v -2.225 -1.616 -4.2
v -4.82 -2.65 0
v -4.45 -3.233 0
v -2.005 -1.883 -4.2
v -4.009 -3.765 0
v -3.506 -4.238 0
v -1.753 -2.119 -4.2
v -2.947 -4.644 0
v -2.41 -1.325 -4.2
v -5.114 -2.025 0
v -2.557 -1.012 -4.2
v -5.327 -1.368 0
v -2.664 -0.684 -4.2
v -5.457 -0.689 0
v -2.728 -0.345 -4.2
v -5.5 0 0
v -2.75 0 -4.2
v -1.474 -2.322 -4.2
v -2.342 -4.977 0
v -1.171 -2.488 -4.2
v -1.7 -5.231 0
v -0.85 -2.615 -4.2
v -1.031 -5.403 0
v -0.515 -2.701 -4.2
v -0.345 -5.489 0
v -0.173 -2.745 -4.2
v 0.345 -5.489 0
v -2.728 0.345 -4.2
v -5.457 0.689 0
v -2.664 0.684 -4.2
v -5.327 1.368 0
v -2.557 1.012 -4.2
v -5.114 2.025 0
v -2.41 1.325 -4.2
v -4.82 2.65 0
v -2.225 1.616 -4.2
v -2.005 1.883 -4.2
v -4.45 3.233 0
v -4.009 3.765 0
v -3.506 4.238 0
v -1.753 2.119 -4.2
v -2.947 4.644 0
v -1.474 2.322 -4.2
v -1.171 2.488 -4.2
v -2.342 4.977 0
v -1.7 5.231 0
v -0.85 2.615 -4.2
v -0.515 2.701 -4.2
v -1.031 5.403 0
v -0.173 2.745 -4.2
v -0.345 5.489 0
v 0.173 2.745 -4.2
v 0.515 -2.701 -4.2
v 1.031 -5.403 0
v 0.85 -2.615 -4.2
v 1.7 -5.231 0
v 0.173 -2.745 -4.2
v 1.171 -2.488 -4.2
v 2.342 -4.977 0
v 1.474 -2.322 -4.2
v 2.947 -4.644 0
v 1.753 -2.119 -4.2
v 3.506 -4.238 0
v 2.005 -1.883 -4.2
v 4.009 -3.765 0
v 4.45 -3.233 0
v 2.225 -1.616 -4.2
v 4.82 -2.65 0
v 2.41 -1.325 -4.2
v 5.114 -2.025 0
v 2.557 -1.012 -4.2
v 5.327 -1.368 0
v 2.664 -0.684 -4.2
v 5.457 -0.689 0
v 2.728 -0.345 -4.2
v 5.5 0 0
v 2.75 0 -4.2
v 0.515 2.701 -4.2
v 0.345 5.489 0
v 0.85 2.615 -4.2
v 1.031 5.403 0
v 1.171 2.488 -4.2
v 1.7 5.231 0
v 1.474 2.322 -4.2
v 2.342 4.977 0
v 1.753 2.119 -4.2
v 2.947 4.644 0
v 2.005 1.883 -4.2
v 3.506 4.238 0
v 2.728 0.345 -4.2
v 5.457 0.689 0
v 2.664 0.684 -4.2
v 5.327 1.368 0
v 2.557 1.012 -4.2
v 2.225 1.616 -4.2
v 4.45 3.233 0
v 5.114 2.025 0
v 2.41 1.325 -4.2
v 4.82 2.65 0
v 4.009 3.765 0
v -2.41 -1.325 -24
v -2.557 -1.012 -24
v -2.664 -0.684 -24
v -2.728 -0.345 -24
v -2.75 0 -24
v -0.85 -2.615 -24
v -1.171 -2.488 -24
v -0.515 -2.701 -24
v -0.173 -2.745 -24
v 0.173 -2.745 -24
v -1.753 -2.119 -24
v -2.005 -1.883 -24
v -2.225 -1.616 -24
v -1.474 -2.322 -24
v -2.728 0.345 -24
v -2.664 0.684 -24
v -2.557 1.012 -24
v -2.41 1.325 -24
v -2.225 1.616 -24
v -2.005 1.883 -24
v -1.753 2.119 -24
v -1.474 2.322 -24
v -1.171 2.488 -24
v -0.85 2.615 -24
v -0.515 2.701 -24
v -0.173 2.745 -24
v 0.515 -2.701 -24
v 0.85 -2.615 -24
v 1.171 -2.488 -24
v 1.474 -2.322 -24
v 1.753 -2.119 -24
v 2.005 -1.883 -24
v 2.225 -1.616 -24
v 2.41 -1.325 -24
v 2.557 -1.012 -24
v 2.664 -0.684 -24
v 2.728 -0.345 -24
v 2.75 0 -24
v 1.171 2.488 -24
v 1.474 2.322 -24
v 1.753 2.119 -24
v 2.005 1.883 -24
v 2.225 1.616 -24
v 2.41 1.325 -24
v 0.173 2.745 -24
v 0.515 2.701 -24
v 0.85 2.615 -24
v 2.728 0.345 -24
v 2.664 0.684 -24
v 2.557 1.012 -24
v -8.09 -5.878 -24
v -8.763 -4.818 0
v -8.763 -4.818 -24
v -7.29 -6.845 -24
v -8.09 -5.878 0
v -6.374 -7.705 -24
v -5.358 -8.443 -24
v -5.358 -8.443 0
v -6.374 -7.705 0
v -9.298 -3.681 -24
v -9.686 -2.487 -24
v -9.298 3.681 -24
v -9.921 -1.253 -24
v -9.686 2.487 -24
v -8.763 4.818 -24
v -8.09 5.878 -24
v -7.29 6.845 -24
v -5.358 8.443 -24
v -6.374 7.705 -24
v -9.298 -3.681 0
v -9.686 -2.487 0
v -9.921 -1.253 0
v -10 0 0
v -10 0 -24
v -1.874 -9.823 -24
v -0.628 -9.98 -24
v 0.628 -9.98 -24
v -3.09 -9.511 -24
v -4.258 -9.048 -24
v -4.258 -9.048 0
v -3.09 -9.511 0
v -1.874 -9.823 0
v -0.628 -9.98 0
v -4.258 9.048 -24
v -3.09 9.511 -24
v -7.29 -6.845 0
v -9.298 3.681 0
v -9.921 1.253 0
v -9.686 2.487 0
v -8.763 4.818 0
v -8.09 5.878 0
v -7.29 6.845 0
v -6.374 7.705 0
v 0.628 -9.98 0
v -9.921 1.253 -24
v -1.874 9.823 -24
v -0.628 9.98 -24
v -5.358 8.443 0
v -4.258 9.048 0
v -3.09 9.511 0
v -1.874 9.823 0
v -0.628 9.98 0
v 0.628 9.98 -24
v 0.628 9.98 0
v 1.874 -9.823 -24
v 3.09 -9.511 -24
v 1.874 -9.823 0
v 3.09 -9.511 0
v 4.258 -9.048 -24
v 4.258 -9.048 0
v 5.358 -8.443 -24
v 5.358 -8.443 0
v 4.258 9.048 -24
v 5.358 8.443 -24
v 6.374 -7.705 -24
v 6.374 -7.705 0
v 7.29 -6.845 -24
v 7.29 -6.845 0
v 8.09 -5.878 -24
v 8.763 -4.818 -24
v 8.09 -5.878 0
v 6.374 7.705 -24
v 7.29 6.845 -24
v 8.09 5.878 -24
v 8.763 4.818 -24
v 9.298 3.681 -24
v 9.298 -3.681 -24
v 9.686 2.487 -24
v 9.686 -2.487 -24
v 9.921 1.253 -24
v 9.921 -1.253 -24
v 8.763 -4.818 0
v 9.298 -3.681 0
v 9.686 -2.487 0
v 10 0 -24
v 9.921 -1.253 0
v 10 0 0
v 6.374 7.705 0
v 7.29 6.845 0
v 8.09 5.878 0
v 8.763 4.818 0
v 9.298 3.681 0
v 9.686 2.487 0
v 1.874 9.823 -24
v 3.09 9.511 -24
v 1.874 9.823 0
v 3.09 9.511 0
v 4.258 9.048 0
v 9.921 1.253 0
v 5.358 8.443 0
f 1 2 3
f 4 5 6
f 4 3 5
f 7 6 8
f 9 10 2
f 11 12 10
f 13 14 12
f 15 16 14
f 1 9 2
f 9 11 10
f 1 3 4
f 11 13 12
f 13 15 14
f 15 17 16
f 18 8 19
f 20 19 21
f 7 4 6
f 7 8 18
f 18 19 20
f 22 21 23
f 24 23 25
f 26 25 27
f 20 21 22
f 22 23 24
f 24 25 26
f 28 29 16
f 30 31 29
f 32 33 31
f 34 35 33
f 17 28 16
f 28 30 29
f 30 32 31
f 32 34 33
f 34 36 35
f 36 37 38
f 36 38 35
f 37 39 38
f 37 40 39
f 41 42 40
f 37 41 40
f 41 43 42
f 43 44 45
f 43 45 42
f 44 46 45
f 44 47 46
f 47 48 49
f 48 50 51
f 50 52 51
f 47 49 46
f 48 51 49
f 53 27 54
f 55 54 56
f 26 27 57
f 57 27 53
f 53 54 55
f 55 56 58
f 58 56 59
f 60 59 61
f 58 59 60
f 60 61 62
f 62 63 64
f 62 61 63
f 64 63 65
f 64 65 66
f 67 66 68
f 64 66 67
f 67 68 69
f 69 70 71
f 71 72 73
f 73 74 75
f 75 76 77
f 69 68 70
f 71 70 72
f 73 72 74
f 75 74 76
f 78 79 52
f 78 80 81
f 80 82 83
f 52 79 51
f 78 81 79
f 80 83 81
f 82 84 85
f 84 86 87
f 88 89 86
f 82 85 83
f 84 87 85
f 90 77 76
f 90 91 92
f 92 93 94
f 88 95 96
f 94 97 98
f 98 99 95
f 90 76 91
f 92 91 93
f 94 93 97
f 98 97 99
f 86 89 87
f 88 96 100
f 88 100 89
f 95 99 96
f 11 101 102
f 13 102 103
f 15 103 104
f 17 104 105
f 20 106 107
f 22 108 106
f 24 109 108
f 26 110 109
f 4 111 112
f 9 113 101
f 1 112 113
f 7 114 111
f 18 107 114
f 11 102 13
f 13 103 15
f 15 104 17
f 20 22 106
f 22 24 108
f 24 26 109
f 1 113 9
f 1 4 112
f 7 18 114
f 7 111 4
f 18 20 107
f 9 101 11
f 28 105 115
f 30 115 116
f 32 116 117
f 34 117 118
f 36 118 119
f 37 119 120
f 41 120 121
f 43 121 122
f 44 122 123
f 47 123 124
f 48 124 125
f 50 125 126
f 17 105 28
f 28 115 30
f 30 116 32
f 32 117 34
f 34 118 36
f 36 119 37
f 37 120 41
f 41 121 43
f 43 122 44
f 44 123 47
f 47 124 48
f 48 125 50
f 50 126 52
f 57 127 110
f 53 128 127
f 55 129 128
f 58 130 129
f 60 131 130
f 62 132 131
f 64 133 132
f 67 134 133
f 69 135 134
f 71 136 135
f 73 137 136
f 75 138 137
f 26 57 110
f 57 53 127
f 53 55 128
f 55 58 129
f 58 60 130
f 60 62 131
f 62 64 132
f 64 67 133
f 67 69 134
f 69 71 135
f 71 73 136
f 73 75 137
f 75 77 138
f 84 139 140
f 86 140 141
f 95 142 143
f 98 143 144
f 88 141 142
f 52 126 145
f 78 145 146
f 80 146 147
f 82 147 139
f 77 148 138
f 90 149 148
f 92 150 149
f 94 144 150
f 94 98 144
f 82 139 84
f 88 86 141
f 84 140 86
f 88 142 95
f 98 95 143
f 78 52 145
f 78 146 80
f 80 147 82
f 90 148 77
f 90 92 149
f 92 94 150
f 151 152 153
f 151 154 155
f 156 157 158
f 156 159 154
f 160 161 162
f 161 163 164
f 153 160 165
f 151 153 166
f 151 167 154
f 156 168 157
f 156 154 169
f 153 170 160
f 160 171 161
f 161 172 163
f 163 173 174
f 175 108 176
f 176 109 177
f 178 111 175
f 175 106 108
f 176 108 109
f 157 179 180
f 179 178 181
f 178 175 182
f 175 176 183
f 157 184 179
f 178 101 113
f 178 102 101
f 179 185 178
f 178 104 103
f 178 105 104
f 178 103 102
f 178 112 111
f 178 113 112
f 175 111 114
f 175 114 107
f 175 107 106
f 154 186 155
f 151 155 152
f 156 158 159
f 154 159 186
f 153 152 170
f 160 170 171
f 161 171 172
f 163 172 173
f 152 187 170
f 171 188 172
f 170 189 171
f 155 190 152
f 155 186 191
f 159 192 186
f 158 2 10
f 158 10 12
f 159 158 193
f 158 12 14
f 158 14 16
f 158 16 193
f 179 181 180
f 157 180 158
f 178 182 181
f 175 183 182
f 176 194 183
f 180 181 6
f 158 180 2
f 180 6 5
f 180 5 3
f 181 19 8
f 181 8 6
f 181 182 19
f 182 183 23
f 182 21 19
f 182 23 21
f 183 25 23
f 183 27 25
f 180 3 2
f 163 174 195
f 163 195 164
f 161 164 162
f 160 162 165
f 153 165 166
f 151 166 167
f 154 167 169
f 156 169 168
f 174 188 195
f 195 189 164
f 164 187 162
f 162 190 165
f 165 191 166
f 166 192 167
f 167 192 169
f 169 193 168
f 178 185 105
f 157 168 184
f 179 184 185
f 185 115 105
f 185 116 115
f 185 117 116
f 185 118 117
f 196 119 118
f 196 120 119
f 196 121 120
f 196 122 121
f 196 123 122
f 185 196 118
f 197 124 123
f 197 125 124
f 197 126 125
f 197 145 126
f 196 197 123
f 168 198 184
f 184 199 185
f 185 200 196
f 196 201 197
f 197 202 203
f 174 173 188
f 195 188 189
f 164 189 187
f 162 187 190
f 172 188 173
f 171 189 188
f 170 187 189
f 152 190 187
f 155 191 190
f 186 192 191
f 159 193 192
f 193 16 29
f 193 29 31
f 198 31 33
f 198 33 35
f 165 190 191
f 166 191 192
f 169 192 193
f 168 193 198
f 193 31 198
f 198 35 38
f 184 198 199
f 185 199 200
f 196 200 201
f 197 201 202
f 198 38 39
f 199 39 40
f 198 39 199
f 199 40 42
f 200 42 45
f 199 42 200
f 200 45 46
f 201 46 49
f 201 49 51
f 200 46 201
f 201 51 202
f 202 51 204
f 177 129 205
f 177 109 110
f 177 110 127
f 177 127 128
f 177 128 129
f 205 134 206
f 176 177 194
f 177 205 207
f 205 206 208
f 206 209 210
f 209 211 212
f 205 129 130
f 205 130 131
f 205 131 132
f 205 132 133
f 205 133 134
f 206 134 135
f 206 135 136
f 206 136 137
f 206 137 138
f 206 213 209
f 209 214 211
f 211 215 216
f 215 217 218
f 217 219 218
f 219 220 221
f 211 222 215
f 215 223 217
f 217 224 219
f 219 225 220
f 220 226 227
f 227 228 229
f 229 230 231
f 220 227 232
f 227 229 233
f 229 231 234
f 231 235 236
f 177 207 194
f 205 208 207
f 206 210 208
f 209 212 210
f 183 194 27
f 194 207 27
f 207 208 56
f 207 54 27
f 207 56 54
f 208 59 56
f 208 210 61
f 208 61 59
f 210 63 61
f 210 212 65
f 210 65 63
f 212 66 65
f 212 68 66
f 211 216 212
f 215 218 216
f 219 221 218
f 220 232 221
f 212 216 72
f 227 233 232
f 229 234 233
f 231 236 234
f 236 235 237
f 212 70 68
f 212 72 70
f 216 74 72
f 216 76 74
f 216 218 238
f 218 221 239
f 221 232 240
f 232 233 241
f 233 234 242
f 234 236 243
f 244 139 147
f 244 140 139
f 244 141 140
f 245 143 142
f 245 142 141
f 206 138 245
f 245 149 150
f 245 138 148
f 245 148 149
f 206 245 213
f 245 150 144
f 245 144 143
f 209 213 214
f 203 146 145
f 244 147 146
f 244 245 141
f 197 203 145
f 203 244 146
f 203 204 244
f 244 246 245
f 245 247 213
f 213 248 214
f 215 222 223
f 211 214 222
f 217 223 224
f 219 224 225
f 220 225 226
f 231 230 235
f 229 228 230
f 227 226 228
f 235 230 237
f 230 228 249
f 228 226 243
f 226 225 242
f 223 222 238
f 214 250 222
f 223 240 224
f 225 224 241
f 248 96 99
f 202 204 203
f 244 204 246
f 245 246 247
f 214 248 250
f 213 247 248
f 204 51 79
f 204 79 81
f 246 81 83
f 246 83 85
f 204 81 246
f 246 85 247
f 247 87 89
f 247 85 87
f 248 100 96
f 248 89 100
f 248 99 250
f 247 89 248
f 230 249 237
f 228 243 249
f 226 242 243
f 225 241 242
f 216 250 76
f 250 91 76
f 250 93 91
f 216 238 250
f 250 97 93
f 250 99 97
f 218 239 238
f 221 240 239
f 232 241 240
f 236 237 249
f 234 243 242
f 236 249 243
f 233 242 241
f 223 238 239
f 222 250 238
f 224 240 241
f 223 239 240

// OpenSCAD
$fn = 50;

difference() {
	union() {
		translate(v = [0, 0, -24.0]) {
			cylinder(h = 24, r = 10.0);
		}
	}
	union() {
		translate(v = [0, 0, 0]) {
			rotate(a = [0, 0, 0]) {
				difference() {
					union() {
						translate(v = [0, 0, -27.0]) {
							cylinder(h = 27, r = 2.25);
						}
						translate(v = [0, 0, -4.2]) {
							cylinder(h = 4.2, r1 = 2.75, r2 = 5.5);
						}
						translate(v = [0, 0, -27.0]) {
							cylinder(h = 27, r = 2.75);
						}
						translate(v = [0, 0, -27.0]) {
							cylinder(h = 27, r = 2.25);
						}
					}
					union();
				}
			}
		}
	}
}
